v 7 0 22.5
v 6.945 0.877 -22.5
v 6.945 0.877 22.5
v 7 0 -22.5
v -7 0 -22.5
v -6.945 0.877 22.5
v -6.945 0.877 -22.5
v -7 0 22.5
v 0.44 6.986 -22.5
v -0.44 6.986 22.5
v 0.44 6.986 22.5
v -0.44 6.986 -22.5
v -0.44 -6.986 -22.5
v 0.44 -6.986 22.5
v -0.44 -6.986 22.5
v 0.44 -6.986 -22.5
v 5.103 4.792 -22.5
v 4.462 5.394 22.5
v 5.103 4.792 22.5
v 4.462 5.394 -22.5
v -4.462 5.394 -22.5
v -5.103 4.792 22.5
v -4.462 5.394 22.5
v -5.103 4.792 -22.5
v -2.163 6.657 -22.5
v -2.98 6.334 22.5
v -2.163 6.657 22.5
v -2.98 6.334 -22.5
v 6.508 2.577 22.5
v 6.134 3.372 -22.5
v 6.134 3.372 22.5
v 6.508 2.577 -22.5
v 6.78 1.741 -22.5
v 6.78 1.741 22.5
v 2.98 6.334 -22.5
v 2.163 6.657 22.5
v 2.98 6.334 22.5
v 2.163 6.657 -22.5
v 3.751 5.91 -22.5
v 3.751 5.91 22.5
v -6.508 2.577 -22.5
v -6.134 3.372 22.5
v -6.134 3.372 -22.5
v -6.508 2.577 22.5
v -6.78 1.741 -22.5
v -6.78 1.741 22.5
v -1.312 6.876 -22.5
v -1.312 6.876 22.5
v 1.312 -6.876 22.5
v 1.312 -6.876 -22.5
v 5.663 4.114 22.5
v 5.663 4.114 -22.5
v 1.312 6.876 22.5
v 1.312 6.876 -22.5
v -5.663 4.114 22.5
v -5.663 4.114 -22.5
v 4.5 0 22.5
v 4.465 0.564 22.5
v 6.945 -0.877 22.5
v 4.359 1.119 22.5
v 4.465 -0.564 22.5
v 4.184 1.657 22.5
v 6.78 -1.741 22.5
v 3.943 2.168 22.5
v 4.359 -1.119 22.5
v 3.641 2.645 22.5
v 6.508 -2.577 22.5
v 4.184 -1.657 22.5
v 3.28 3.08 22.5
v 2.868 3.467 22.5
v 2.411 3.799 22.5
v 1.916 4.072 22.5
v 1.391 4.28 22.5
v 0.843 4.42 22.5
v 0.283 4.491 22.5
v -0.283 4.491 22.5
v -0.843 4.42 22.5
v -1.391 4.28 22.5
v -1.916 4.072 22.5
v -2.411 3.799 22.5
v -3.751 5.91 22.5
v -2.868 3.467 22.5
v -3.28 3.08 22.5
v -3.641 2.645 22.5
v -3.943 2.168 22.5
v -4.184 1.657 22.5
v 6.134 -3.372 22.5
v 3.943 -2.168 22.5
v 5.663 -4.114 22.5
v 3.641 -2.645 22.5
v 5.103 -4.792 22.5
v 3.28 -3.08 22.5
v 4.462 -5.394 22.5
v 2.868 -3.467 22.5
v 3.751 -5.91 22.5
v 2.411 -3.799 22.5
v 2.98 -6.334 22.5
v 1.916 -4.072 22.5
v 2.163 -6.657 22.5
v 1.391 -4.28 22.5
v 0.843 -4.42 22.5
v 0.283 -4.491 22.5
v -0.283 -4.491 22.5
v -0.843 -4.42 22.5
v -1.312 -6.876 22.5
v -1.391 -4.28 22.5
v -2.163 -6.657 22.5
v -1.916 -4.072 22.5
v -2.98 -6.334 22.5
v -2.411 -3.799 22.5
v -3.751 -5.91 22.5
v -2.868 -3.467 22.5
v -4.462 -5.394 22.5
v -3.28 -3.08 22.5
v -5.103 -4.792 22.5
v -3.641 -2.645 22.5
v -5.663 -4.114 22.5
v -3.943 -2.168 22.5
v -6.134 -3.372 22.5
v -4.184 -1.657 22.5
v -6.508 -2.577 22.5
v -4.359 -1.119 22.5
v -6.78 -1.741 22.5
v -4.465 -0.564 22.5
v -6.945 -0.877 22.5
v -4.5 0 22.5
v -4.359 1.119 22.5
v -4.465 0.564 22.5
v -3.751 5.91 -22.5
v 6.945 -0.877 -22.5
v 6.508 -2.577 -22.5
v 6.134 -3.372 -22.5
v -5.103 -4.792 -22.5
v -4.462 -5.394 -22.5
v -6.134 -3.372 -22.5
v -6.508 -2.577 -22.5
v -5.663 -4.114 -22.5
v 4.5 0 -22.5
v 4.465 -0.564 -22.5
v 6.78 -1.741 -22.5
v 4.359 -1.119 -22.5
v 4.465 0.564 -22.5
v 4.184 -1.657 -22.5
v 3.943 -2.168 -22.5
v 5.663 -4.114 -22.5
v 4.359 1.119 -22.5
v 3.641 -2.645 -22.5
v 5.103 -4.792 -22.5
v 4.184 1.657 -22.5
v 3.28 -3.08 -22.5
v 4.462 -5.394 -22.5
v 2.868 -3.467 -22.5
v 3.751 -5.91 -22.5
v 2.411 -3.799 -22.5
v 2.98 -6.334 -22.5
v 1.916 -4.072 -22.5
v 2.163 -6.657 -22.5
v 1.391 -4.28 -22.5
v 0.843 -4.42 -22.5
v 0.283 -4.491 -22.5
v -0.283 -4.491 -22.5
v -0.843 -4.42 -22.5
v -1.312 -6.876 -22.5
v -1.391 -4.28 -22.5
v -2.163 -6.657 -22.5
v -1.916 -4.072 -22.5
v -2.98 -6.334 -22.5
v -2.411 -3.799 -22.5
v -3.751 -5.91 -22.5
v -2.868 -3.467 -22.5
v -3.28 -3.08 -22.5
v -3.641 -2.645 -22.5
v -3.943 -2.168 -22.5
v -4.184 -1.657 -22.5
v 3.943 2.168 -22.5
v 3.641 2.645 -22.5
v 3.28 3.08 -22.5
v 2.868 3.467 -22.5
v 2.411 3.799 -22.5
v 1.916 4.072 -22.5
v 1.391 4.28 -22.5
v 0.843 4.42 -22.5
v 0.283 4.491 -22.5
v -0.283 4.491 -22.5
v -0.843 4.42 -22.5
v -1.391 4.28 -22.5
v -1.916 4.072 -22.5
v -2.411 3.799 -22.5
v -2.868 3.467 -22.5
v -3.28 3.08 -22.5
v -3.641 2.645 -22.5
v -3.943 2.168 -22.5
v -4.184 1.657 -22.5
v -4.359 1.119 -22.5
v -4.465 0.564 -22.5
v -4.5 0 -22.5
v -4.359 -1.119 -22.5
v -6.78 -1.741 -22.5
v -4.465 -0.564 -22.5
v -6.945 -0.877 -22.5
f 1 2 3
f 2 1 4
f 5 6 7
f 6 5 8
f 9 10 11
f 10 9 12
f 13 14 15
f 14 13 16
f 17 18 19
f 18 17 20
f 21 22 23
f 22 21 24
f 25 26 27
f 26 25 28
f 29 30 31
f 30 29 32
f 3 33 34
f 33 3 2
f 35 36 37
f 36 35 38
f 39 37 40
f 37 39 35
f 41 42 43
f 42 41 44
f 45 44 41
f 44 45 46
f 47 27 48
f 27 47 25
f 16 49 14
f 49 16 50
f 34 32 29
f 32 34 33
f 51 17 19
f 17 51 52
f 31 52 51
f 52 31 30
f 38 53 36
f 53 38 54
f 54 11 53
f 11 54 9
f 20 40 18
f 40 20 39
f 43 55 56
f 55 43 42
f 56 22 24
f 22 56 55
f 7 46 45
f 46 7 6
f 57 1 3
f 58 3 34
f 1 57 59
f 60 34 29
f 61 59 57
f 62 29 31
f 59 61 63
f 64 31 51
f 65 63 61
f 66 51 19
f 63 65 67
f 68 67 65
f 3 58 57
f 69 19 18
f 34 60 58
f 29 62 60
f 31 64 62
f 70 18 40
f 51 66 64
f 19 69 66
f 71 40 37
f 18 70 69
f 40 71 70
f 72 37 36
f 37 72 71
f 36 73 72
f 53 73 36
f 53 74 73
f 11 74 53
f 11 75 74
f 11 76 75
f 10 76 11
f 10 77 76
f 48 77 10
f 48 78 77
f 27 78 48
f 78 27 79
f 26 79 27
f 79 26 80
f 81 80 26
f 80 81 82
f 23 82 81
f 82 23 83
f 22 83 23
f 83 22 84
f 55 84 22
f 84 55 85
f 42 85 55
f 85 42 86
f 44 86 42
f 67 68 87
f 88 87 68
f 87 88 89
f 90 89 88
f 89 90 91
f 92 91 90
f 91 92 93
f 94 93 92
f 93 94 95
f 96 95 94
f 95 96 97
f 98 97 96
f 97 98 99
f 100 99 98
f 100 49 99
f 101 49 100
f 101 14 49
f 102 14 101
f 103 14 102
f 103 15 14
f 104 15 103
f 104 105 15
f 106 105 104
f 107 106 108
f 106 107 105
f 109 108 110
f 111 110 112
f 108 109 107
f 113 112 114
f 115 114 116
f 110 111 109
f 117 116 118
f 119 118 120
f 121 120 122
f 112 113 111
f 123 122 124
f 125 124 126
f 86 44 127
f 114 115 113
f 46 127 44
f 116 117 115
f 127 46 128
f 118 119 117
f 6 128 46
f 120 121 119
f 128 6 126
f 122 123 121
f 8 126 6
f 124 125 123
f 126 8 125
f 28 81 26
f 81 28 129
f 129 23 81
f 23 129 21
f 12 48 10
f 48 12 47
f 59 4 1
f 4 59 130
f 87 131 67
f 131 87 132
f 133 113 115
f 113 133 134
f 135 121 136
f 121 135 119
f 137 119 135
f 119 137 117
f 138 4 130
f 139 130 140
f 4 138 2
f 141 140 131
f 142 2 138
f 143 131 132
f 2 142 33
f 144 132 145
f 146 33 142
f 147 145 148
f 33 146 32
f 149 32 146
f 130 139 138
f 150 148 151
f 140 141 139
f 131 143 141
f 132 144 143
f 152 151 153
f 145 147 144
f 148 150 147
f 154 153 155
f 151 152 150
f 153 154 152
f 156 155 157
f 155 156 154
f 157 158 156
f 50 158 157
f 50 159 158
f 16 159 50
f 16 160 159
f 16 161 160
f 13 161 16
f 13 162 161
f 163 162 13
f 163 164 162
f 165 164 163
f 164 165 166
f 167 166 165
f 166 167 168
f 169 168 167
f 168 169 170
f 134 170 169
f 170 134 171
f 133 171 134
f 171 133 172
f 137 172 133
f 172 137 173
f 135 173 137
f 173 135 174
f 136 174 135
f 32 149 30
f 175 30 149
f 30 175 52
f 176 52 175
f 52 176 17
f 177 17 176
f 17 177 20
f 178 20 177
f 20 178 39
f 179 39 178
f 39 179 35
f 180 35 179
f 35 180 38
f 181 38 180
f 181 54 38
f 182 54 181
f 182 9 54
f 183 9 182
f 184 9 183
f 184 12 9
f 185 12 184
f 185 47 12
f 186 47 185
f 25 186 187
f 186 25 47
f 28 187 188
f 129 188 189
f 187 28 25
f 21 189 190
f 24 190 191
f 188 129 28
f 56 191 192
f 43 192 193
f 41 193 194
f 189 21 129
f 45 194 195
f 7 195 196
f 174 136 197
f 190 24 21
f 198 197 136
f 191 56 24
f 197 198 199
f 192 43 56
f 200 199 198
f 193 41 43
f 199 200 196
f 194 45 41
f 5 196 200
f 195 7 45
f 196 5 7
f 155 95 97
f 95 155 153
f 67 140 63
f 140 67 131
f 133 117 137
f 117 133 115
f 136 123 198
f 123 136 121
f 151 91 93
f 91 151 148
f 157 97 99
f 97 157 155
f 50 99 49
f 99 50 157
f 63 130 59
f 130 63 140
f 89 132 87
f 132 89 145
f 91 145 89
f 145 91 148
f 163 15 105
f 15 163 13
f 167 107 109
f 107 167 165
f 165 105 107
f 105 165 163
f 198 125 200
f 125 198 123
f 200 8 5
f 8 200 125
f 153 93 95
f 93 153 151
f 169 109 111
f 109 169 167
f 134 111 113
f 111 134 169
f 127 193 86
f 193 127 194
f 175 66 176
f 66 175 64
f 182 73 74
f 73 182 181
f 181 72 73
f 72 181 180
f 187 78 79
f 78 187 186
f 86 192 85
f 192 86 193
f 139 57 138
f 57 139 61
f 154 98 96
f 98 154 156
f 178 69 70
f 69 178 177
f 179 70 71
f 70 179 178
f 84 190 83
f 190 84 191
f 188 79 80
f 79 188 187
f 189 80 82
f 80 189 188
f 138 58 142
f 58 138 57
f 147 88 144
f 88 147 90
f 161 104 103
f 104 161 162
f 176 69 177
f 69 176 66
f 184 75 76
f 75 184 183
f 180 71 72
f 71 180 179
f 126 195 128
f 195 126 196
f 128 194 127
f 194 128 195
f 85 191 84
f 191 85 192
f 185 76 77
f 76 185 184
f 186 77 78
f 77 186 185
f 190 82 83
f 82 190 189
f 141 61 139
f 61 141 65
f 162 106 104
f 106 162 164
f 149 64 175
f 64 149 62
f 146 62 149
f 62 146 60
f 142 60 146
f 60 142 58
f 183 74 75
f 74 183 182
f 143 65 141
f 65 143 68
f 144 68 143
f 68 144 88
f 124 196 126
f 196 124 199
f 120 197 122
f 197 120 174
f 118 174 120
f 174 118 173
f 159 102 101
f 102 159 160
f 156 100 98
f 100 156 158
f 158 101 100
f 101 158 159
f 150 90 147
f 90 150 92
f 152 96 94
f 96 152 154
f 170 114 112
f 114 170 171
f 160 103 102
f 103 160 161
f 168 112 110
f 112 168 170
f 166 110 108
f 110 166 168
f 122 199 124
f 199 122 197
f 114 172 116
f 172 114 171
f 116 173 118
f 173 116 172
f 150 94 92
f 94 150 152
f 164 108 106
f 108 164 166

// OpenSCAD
$fn = 50;


difference() {
	union() {
		translate(v = [0, 0, -22.5000000000]) {
			cylinder(h = 45, r = 7.0000000000);
		}
	}
	union() {
		translate(v = [0, 0, -100.0000000000]) {
			cylinder(h = 200, r = 4.5000000000);
		}
	}
}
